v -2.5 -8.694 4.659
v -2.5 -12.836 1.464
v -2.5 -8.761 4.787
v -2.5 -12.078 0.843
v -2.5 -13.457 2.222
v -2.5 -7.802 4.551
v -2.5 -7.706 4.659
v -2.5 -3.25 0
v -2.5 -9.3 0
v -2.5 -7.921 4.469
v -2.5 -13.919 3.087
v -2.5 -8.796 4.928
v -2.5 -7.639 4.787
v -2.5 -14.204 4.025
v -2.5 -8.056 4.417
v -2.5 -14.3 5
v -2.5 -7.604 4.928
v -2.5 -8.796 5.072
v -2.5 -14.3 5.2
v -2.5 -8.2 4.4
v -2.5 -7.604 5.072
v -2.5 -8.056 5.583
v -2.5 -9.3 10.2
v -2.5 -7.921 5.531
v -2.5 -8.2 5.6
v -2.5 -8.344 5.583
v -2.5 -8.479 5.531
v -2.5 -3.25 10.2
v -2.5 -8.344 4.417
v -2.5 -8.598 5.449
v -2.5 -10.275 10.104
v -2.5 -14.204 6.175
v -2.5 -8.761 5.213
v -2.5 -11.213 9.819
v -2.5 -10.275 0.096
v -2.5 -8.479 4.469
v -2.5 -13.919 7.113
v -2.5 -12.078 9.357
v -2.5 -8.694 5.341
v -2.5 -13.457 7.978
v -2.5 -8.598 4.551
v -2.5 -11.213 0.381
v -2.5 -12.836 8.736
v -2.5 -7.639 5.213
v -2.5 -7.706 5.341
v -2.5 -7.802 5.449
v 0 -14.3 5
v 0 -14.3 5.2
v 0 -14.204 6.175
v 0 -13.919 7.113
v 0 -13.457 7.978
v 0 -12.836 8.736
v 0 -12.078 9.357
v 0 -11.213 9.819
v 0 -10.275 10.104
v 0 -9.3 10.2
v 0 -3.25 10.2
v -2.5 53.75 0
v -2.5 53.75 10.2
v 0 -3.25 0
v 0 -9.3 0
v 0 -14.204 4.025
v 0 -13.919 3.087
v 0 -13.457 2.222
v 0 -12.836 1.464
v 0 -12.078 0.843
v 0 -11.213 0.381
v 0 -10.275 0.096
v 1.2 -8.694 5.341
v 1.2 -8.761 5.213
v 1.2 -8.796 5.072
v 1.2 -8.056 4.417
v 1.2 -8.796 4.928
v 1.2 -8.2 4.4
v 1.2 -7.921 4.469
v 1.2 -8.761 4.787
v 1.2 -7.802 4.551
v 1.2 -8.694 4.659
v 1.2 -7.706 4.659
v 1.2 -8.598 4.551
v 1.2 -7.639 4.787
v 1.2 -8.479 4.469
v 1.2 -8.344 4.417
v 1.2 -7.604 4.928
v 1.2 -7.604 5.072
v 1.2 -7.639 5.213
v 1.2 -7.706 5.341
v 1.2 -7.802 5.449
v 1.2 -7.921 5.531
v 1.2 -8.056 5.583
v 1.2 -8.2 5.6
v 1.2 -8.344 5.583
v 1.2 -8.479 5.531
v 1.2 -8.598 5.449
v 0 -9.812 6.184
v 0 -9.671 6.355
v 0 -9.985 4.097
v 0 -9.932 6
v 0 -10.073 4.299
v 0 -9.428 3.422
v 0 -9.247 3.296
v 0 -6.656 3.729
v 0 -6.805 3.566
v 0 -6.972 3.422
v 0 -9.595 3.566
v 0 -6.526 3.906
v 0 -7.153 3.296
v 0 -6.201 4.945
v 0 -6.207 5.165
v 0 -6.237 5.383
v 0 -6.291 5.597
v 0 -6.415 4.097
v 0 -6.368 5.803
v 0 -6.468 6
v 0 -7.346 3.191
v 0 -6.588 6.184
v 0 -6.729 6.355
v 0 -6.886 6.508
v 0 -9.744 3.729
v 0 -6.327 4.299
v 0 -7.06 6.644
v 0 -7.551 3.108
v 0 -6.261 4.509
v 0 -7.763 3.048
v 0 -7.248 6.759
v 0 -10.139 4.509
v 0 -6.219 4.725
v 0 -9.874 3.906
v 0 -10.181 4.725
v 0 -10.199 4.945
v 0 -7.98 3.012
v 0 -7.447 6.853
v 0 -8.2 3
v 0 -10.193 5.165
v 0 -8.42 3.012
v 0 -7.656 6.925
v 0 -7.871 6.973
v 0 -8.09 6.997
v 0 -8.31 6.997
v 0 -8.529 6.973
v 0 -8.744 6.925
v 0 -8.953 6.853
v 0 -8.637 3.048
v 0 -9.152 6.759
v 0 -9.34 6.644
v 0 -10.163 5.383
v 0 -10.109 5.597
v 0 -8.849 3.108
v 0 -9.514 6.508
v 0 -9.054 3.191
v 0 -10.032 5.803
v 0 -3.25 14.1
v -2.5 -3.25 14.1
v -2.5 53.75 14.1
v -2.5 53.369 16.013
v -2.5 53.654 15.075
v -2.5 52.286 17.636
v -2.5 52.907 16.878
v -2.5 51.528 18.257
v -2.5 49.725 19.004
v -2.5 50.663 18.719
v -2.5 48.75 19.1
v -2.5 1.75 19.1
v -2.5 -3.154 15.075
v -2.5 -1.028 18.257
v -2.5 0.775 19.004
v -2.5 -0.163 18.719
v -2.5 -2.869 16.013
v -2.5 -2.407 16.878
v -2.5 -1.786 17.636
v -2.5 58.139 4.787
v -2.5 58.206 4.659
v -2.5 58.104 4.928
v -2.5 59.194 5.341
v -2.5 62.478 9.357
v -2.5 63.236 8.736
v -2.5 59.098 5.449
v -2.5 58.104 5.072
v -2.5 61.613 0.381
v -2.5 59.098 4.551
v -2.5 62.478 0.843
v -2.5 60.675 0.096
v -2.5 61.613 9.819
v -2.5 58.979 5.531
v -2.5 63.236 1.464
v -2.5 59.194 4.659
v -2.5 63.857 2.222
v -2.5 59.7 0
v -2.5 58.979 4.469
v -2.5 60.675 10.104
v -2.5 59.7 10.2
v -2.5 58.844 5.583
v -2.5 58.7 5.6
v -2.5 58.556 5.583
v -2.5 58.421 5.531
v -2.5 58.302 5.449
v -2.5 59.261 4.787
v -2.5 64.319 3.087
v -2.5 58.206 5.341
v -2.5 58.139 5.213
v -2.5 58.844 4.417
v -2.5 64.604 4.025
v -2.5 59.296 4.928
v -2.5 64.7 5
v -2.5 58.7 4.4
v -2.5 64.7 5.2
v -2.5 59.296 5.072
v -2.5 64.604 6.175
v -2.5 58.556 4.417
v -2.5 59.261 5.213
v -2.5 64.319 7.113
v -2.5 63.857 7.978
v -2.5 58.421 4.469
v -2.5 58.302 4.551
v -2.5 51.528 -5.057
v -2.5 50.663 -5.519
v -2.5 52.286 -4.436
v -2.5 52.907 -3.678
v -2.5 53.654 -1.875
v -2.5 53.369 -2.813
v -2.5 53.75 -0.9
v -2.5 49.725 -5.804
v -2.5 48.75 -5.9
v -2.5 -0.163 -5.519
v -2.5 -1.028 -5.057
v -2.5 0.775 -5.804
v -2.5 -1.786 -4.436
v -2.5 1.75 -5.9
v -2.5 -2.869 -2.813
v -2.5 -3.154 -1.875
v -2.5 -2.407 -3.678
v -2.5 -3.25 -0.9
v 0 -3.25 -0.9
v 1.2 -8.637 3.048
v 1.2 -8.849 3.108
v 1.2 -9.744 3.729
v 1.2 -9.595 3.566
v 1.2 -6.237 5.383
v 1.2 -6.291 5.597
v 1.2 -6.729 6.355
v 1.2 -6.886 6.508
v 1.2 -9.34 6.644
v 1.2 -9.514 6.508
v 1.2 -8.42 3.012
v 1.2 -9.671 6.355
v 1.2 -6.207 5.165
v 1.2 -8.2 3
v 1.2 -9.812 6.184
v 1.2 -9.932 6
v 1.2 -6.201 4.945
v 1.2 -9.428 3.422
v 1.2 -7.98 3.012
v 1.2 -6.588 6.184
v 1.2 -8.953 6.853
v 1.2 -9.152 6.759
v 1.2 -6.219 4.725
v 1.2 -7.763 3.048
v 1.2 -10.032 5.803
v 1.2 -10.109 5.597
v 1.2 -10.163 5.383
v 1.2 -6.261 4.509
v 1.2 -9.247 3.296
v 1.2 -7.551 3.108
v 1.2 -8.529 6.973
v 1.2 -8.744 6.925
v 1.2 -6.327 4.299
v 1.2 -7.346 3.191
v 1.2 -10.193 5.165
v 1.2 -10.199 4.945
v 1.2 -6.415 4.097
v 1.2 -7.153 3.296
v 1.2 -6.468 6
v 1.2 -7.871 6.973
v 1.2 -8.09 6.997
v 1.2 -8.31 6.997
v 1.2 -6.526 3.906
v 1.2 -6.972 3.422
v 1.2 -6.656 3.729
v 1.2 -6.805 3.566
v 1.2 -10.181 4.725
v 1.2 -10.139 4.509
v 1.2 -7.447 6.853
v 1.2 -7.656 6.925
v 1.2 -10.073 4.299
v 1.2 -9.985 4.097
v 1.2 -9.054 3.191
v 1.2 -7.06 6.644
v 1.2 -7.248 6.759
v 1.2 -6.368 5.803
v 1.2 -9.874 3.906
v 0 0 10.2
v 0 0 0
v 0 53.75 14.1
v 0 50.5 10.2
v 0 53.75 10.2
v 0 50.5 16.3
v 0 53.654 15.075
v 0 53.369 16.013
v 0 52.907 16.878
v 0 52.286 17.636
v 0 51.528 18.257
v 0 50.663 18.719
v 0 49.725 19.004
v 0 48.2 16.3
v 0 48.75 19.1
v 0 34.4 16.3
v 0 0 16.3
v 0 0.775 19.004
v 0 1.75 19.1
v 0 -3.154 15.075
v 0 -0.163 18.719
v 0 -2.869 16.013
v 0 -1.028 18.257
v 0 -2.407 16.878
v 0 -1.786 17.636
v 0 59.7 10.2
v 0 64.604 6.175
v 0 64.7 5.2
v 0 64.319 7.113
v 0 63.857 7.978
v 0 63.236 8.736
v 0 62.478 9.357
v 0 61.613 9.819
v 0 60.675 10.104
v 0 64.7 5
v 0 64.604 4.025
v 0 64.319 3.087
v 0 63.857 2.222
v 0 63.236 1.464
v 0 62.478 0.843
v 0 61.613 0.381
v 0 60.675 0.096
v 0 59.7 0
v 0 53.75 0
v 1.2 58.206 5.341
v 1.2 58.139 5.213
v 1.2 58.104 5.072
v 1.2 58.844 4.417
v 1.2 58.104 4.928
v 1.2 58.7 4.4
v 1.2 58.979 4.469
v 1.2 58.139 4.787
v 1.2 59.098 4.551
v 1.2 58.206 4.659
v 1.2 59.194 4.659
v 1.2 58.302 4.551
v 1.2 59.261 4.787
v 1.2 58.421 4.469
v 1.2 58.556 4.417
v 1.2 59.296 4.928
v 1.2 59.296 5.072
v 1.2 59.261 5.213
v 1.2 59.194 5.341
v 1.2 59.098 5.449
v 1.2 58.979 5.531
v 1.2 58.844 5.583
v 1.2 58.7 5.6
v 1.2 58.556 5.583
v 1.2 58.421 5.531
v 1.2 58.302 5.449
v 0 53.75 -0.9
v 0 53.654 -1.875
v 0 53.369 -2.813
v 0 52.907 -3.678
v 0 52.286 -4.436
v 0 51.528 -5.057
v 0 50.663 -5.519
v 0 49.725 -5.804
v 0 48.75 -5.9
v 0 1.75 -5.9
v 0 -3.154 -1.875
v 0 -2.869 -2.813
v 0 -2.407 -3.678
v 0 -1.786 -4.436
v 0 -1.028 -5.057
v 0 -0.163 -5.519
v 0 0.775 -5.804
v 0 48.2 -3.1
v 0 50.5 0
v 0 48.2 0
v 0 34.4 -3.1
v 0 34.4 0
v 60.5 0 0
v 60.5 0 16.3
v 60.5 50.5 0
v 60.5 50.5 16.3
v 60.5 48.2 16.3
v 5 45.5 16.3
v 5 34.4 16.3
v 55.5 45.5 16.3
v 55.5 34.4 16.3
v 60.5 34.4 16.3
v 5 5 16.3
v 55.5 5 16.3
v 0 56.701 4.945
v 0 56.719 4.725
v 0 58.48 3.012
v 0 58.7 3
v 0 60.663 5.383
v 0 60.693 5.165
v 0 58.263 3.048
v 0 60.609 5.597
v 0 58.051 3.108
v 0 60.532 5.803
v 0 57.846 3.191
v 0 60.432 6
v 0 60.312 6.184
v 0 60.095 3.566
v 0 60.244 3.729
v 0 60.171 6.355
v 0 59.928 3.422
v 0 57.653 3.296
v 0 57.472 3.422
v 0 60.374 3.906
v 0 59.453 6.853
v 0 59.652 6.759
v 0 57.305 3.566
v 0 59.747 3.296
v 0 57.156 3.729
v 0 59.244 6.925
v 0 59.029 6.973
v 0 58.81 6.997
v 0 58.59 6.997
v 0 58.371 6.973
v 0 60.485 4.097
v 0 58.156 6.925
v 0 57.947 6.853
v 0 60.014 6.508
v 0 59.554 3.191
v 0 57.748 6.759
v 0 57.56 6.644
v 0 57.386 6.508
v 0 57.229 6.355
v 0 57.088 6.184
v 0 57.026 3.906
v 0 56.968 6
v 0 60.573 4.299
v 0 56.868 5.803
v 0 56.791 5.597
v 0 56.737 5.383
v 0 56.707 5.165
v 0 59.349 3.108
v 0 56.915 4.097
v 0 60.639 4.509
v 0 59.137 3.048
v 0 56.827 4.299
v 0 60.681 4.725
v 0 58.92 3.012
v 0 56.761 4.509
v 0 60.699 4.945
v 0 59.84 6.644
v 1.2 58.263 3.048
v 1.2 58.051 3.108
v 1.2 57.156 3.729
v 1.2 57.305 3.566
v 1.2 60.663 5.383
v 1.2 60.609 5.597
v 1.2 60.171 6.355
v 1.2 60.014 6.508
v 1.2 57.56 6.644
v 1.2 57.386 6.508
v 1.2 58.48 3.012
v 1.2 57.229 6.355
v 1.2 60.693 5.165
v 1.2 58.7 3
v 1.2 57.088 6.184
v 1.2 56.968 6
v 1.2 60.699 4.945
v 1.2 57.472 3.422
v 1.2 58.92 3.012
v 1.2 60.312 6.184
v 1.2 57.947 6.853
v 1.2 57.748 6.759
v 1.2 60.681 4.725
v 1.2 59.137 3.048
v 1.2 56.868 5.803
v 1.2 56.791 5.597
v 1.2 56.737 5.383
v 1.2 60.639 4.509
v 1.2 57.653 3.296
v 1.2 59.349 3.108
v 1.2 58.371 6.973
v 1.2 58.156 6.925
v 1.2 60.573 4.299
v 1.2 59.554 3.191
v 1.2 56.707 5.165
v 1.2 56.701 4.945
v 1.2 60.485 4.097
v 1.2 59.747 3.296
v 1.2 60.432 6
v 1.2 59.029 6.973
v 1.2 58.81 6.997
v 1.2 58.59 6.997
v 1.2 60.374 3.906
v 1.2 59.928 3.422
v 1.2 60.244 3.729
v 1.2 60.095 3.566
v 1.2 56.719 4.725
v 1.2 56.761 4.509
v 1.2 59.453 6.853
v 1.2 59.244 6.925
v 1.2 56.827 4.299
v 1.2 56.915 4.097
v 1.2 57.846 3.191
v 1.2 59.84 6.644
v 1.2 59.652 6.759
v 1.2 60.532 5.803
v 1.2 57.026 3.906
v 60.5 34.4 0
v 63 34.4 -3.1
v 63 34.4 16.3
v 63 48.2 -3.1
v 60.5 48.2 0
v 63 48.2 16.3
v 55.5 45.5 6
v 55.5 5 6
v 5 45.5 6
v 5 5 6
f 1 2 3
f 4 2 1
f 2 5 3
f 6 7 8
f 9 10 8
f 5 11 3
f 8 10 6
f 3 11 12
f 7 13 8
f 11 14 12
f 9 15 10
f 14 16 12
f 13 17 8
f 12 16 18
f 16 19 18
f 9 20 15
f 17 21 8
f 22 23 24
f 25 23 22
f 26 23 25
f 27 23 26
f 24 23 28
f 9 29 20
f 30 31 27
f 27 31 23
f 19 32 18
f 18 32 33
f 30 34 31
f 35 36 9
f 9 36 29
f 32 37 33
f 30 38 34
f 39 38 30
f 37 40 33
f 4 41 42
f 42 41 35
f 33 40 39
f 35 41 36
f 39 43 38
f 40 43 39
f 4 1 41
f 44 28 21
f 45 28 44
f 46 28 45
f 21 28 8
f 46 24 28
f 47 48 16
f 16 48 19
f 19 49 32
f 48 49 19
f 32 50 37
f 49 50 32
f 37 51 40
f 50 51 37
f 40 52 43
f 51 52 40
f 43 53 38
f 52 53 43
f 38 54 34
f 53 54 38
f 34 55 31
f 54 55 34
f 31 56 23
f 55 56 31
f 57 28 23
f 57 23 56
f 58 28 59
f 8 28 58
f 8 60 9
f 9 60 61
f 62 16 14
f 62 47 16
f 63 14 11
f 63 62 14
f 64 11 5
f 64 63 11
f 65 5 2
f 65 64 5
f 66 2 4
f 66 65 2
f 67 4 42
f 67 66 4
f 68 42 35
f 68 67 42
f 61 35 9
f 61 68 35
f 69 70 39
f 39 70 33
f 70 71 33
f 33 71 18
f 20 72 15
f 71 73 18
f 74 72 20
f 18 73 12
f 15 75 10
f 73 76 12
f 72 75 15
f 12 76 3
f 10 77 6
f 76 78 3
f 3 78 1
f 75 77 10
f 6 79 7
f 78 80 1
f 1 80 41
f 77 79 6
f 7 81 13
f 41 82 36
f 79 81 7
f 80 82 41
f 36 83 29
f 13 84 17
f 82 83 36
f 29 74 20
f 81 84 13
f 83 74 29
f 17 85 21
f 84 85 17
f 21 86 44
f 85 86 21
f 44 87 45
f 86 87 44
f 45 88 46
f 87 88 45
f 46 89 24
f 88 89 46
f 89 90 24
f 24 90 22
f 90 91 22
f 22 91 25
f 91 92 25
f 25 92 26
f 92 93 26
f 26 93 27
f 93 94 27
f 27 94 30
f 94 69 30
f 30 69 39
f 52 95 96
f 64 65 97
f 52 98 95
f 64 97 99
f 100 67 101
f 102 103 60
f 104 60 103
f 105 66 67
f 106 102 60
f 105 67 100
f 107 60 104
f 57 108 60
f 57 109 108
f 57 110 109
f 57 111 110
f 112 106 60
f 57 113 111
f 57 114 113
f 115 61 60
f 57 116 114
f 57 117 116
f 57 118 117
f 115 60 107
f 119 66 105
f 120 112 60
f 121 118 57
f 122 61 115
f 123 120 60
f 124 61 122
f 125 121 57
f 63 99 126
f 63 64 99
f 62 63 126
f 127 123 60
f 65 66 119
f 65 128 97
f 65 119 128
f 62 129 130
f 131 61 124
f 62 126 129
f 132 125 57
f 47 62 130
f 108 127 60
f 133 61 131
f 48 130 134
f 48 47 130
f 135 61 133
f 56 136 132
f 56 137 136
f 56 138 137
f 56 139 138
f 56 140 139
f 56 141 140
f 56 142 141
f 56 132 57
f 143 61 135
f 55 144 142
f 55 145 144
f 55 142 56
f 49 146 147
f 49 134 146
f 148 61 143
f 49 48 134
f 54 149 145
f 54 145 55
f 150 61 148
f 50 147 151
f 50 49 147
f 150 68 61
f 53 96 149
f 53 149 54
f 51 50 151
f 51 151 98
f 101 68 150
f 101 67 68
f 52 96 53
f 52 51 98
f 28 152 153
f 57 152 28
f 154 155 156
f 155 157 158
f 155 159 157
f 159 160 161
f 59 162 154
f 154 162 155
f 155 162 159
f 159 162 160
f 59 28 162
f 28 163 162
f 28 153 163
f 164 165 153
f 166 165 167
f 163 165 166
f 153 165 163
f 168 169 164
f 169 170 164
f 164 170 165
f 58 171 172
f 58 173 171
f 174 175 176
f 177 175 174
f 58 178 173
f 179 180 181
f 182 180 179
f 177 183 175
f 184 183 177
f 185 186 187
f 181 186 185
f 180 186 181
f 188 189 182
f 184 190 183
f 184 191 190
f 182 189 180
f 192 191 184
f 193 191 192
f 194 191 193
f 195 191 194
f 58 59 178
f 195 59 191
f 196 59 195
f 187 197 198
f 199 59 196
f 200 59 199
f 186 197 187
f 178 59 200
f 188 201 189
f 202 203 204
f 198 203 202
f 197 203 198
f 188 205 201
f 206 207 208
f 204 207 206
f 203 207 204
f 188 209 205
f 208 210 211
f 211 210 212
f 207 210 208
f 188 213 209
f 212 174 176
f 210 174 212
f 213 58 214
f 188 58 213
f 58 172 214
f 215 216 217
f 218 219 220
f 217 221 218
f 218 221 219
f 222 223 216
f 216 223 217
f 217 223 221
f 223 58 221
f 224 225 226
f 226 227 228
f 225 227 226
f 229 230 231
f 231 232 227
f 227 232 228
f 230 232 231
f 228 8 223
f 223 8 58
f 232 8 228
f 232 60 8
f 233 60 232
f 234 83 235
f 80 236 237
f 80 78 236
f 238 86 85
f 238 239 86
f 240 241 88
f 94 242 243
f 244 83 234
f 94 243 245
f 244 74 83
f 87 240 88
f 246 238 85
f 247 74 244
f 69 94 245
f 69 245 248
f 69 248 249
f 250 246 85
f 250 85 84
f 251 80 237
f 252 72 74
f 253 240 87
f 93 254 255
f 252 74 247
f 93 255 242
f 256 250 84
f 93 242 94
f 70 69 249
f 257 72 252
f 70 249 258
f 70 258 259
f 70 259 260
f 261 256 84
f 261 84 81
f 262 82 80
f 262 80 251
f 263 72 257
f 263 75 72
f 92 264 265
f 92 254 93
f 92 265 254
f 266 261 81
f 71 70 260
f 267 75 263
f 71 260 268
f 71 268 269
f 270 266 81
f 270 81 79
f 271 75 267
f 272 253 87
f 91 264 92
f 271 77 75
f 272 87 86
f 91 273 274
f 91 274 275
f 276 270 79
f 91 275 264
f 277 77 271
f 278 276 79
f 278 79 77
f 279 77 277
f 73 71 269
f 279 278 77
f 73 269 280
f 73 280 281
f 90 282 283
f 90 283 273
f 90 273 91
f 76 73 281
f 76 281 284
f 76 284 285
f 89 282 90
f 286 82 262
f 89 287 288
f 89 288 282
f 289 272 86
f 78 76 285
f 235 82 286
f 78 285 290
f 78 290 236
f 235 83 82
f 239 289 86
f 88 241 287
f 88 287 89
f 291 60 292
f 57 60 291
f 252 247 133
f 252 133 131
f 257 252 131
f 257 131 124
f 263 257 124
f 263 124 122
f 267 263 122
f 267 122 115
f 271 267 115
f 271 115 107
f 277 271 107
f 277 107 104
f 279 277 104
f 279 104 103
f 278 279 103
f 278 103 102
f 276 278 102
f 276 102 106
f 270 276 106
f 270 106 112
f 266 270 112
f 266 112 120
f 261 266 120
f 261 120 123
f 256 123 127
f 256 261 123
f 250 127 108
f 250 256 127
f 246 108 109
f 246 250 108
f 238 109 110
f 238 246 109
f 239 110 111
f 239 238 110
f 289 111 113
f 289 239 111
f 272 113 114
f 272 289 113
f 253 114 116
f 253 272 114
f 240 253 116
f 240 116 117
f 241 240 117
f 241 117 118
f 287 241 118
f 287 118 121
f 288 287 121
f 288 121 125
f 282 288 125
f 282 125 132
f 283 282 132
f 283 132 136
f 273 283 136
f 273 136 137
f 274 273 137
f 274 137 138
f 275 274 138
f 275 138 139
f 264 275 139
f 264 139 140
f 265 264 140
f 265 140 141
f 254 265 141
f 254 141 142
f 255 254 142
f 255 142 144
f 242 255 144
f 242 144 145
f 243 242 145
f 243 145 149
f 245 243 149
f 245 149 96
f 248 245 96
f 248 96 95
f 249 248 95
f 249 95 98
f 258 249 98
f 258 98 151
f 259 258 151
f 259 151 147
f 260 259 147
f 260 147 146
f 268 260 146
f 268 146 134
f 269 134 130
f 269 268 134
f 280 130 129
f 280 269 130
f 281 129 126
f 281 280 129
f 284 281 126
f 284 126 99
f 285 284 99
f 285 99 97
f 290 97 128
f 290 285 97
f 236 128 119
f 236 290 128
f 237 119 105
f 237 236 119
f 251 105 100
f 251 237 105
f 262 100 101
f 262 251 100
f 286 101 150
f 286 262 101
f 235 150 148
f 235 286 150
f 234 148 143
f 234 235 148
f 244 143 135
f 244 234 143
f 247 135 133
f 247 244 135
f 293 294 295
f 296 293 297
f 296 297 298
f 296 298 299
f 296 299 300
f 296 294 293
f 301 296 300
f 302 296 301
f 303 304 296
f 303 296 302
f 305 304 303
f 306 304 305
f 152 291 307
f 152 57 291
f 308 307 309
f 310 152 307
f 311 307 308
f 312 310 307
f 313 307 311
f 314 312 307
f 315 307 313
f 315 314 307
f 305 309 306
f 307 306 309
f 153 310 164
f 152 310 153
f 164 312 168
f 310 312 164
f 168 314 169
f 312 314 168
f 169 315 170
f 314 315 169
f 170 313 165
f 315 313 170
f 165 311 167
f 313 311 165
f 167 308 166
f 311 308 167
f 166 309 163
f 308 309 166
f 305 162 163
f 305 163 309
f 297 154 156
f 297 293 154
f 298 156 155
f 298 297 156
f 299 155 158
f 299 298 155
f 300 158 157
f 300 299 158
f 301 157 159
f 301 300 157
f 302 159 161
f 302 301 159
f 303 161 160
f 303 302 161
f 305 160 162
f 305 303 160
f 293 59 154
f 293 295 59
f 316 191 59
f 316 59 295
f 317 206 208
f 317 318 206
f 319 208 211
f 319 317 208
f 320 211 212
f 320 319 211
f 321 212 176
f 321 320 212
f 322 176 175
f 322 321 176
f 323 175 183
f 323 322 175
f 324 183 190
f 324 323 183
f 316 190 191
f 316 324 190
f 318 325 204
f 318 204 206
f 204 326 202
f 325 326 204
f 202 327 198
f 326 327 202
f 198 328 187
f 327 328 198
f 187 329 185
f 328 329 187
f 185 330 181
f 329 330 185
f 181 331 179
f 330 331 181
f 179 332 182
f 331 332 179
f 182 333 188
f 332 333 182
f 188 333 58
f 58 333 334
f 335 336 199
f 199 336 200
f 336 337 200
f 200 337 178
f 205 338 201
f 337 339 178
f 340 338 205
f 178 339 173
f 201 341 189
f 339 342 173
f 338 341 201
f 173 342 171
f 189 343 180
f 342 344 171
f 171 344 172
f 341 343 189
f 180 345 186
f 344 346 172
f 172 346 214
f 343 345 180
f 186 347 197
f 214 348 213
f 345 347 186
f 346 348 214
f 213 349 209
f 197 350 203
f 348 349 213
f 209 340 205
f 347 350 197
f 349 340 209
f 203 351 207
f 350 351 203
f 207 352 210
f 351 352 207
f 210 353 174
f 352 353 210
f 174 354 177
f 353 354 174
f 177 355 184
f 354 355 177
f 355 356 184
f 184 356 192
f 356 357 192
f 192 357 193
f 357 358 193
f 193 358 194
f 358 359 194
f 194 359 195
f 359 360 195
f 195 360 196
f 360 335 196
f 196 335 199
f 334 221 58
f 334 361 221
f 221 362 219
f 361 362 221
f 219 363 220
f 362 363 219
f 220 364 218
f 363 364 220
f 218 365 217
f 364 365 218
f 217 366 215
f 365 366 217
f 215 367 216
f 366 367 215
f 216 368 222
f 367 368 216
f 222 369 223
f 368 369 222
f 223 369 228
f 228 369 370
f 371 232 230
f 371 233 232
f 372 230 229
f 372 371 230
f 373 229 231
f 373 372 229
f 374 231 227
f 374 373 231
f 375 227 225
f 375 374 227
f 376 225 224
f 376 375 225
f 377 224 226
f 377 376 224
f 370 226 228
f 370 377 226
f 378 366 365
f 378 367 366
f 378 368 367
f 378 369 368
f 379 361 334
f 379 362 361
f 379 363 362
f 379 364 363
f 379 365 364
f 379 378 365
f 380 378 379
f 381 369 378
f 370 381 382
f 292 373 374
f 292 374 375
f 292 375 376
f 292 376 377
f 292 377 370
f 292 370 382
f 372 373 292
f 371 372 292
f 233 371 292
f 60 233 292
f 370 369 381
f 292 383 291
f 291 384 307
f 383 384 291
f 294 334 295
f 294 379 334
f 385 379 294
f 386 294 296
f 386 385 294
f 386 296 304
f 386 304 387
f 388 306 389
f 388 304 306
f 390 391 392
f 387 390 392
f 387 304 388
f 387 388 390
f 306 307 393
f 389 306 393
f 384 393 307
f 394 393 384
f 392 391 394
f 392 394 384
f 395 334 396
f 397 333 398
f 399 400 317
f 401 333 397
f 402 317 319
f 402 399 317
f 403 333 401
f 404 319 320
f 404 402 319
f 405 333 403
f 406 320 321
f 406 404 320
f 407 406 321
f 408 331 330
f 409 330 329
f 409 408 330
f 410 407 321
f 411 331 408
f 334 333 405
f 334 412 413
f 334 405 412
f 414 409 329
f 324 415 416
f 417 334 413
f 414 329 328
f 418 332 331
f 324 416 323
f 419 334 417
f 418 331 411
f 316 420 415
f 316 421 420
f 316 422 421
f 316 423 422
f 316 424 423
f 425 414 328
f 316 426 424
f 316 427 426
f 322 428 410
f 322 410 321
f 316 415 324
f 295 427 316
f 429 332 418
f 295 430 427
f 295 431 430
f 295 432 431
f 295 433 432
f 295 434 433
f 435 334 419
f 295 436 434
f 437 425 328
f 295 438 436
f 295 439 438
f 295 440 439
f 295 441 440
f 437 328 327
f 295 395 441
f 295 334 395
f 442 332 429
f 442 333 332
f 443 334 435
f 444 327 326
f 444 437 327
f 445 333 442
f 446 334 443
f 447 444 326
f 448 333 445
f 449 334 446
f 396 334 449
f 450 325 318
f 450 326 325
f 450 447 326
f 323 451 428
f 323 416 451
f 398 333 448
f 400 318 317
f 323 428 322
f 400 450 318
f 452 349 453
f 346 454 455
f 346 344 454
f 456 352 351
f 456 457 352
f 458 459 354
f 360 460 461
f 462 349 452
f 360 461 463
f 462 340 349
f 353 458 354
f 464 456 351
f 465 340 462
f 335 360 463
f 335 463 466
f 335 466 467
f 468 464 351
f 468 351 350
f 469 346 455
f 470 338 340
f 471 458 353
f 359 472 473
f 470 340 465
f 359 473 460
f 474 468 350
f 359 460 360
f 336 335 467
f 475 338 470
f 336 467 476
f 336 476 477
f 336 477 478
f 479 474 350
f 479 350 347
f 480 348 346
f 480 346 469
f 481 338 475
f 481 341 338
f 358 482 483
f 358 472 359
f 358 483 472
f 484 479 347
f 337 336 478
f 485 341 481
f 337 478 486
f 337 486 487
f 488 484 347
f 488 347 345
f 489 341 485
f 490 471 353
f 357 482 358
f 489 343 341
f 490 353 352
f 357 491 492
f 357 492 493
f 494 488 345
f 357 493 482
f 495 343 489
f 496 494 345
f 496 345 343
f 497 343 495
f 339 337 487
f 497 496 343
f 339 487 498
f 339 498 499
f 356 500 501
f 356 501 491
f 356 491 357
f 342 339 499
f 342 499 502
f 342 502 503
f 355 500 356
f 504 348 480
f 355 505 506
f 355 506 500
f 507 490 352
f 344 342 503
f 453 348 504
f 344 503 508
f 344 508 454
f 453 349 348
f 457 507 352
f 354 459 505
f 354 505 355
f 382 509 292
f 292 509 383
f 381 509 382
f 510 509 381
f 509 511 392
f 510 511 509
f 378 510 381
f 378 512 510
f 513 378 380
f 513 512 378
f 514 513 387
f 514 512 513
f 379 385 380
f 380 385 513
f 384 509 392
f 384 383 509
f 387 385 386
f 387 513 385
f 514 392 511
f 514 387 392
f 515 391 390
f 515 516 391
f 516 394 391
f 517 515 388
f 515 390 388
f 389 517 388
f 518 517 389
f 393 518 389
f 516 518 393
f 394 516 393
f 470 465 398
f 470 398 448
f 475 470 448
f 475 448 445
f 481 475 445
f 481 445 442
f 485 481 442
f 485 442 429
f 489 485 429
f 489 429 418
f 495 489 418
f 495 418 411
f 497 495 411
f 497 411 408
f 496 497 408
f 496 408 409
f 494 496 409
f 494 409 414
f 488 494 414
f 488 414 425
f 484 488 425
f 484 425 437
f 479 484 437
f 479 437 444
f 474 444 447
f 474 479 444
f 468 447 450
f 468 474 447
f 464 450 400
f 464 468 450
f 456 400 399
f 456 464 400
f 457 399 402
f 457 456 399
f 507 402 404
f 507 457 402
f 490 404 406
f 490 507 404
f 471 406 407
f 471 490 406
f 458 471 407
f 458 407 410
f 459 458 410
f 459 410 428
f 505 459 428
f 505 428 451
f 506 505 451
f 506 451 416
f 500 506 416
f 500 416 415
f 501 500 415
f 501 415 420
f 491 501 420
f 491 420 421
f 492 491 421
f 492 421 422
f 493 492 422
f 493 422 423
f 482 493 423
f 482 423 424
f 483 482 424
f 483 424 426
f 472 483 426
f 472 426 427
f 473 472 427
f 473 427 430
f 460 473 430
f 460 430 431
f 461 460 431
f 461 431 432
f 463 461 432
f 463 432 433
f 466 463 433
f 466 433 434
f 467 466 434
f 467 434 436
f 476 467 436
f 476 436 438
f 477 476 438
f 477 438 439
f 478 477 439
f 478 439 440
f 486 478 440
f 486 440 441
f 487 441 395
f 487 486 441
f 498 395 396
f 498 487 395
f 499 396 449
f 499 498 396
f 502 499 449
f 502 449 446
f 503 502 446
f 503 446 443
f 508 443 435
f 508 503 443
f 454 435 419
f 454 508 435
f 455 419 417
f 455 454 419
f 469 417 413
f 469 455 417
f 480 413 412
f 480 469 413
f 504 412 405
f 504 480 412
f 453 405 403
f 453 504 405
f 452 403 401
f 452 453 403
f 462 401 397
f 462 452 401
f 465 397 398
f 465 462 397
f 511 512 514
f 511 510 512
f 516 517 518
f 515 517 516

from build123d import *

# Parameters (mm, degrees)
BOX003_W          = 2.5
BOX003_H          = 57
BOX003_DEPTH      = 25
FILLET_R          = 5
BOX002_W          = 50.5
BOX002_H          = 40.5
BOX002_DEPTH      = 10.3
BOX_W             = 60.5
BOX_H             = 50.5
BOX_DEPTH         = 16.3
BOX001_W          = 63
BOX001_H          = 13.8
BOX001_DEPTH      = 19.4
CYLINDER001_R     = 0.6
CYLINDER001_DEPTH = 10
CYLINDER003_R     = 0.6
CYLINDER003_DEPTH = 10
CYLINDER_R        = 2
CYLINDER_DEPTH    = 1.2
CYLINDER002_R     = 2
CYLINDER002_DEPTH = 1.2
BOX004_W          = 2.5
BOX004_H          = 79
BOX004_DEPTH      = 10.2
FILLET001_R       = 5


with BuildPart() as fillet_body:
    # Box003 → Box003 (new body)
    with BuildSketch(Plane(origin=(-2.5, -3.25, -5.9), x_dir=(1, 0, 0), z_dir=(0, 0, 1))):
        with Locations((1.25, 28.5)):
            Rectangle(BOX003_W, BOX003_H)
    extrude(amount=BOX003_DEPTH)

    # Fillet
    fillet_edges = [fillet_body.edges().sort_by_distance(p)[0] for p in [
        (-1.25, -3.25, -5.9),
        (-1.25, -3.25, 19.1),
        (-1.25, 53.75, -5.9),
        (-1.25, 53.75, 19.1),
    ]]
    fillet(fillet_edges, radius=FILLET_R)


with BuildPart() as cube002:
    # Box002 → Box002 (new body)
    with BuildSketch(Plane(origin=(5, 5, 6), x_dir=(1, 0, 0), z_dir=(0, 0, 1))):
        with Locations((25.25, 20.25)):
            Rectangle(BOX002_W, BOX002_H)
    extrude(amount=BOX002_DEPTH)


with BuildPart() as cube:
    # Box → Box (new body)
    with BuildSketch(Plane.XY):
        with Locations((30.25, 25.25)):
            Rectangle(BOX_W, BOX_H)
    extrude(amount=BOX_DEPTH)


with BuildPart() as cut:
    # Box001 → Box001 (new body)
    with BuildSketch(Plane(origin=(0, 34.4, -3.1), x_dir=(1, 0, 0), z_dir=(0, 0, 1))):
        with Locations((31.5, 6.9)):
            Rectangle(BOX001_W, BOX001_H)
    extrude(amount=BOX001_DEPTH)

    # Fusion: union Cube
    add(cube.part)

    # Cut: cut Cube002
    add(cube002.part, mode=Mode.SUBTRACT)


with BuildPart() as foro:
    # Cylinder001 → Cylinder001 (new body)
    with BuildSketch(Plane(origin=(-6, -8.2, 5), x_dir=(0, 0, -1), z_dir=(1, 0, 0))):
        Circle(CYLINDER001_R)
    extrude(amount=CYLINDER001_DEPTH)


with BuildPart() as foro001:
    # Cylinder003 → Cylinder003 (new body)
    with BuildSketch(Plane(origin=(-6, 58.7, 5), x_dir=(0, 0, -1), z_dir=(1, 0, 0))):
        Circle(CYLINDER003_R)
    extrude(amount=CYLINDER003_DEPTH)


with BuildPart() as cylinder:
    # Cylinder → Cylinder (new body)
    with BuildSketch(Plane(origin=(0, -8.2, 5), x_dir=(0, 0, -1), z_dir=(1, 0, 0))):
        Circle(CYLINDER_R)
    extrude(amount=CYLINDER_DEPTH)


with BuildPart() as cylinder002:
    # Cylinder002 → Cylinder002 (new body)
    with BuildSketch(Plane(origin=(0, 58.7, 5), x_dir=(0, 0, -1), z_dir=(1, 0, 0))):
        Circle(CYLINDER002_R)
    extrude(amount=CYLINDER002_DEPTH)


with BuildPart() as fusion002:
    # Box004 → Box004 (new body)
    with BuildSketch(Plane(origin=(-2.5, -14.3, 0), x_dir=(1, 0, 0), z_dir=(0, 0, 1))):
        with Locations((1.25, 39.5)):
            Rectangle(BOX004_W, BOX004_H)
    extrude(amount=BOX004_DEPTH)

    # Fillet001
    fillet001_edges = [fusion002.edges().sort_by_distance(p)[0] for p in [
        (-1.25, -14.3, 0),
        (-1.25, -14.3, 10.2),
        (-1.25, 64.7, 0),
        (-1.25, 64.7, 10.2),
    ]]
    fillet(fillet001_edges, radius=FILLET001_R)

    # Fusion001: union Cylinder, Cylinder002
    add(cylinder.part)
    add(cylinder002.part)

    # Cut001: cut foro001
    add(foro001.part, mode=Mode.SUBTRACT)

    # Cut002: cut foro
    add(foro.part, mode=Mode.SUBTRACT)

    # Fusion002: union Fillet body, Cut
    add(fillet_body.part)
    add(cut.part)


solid = fusion002.part
